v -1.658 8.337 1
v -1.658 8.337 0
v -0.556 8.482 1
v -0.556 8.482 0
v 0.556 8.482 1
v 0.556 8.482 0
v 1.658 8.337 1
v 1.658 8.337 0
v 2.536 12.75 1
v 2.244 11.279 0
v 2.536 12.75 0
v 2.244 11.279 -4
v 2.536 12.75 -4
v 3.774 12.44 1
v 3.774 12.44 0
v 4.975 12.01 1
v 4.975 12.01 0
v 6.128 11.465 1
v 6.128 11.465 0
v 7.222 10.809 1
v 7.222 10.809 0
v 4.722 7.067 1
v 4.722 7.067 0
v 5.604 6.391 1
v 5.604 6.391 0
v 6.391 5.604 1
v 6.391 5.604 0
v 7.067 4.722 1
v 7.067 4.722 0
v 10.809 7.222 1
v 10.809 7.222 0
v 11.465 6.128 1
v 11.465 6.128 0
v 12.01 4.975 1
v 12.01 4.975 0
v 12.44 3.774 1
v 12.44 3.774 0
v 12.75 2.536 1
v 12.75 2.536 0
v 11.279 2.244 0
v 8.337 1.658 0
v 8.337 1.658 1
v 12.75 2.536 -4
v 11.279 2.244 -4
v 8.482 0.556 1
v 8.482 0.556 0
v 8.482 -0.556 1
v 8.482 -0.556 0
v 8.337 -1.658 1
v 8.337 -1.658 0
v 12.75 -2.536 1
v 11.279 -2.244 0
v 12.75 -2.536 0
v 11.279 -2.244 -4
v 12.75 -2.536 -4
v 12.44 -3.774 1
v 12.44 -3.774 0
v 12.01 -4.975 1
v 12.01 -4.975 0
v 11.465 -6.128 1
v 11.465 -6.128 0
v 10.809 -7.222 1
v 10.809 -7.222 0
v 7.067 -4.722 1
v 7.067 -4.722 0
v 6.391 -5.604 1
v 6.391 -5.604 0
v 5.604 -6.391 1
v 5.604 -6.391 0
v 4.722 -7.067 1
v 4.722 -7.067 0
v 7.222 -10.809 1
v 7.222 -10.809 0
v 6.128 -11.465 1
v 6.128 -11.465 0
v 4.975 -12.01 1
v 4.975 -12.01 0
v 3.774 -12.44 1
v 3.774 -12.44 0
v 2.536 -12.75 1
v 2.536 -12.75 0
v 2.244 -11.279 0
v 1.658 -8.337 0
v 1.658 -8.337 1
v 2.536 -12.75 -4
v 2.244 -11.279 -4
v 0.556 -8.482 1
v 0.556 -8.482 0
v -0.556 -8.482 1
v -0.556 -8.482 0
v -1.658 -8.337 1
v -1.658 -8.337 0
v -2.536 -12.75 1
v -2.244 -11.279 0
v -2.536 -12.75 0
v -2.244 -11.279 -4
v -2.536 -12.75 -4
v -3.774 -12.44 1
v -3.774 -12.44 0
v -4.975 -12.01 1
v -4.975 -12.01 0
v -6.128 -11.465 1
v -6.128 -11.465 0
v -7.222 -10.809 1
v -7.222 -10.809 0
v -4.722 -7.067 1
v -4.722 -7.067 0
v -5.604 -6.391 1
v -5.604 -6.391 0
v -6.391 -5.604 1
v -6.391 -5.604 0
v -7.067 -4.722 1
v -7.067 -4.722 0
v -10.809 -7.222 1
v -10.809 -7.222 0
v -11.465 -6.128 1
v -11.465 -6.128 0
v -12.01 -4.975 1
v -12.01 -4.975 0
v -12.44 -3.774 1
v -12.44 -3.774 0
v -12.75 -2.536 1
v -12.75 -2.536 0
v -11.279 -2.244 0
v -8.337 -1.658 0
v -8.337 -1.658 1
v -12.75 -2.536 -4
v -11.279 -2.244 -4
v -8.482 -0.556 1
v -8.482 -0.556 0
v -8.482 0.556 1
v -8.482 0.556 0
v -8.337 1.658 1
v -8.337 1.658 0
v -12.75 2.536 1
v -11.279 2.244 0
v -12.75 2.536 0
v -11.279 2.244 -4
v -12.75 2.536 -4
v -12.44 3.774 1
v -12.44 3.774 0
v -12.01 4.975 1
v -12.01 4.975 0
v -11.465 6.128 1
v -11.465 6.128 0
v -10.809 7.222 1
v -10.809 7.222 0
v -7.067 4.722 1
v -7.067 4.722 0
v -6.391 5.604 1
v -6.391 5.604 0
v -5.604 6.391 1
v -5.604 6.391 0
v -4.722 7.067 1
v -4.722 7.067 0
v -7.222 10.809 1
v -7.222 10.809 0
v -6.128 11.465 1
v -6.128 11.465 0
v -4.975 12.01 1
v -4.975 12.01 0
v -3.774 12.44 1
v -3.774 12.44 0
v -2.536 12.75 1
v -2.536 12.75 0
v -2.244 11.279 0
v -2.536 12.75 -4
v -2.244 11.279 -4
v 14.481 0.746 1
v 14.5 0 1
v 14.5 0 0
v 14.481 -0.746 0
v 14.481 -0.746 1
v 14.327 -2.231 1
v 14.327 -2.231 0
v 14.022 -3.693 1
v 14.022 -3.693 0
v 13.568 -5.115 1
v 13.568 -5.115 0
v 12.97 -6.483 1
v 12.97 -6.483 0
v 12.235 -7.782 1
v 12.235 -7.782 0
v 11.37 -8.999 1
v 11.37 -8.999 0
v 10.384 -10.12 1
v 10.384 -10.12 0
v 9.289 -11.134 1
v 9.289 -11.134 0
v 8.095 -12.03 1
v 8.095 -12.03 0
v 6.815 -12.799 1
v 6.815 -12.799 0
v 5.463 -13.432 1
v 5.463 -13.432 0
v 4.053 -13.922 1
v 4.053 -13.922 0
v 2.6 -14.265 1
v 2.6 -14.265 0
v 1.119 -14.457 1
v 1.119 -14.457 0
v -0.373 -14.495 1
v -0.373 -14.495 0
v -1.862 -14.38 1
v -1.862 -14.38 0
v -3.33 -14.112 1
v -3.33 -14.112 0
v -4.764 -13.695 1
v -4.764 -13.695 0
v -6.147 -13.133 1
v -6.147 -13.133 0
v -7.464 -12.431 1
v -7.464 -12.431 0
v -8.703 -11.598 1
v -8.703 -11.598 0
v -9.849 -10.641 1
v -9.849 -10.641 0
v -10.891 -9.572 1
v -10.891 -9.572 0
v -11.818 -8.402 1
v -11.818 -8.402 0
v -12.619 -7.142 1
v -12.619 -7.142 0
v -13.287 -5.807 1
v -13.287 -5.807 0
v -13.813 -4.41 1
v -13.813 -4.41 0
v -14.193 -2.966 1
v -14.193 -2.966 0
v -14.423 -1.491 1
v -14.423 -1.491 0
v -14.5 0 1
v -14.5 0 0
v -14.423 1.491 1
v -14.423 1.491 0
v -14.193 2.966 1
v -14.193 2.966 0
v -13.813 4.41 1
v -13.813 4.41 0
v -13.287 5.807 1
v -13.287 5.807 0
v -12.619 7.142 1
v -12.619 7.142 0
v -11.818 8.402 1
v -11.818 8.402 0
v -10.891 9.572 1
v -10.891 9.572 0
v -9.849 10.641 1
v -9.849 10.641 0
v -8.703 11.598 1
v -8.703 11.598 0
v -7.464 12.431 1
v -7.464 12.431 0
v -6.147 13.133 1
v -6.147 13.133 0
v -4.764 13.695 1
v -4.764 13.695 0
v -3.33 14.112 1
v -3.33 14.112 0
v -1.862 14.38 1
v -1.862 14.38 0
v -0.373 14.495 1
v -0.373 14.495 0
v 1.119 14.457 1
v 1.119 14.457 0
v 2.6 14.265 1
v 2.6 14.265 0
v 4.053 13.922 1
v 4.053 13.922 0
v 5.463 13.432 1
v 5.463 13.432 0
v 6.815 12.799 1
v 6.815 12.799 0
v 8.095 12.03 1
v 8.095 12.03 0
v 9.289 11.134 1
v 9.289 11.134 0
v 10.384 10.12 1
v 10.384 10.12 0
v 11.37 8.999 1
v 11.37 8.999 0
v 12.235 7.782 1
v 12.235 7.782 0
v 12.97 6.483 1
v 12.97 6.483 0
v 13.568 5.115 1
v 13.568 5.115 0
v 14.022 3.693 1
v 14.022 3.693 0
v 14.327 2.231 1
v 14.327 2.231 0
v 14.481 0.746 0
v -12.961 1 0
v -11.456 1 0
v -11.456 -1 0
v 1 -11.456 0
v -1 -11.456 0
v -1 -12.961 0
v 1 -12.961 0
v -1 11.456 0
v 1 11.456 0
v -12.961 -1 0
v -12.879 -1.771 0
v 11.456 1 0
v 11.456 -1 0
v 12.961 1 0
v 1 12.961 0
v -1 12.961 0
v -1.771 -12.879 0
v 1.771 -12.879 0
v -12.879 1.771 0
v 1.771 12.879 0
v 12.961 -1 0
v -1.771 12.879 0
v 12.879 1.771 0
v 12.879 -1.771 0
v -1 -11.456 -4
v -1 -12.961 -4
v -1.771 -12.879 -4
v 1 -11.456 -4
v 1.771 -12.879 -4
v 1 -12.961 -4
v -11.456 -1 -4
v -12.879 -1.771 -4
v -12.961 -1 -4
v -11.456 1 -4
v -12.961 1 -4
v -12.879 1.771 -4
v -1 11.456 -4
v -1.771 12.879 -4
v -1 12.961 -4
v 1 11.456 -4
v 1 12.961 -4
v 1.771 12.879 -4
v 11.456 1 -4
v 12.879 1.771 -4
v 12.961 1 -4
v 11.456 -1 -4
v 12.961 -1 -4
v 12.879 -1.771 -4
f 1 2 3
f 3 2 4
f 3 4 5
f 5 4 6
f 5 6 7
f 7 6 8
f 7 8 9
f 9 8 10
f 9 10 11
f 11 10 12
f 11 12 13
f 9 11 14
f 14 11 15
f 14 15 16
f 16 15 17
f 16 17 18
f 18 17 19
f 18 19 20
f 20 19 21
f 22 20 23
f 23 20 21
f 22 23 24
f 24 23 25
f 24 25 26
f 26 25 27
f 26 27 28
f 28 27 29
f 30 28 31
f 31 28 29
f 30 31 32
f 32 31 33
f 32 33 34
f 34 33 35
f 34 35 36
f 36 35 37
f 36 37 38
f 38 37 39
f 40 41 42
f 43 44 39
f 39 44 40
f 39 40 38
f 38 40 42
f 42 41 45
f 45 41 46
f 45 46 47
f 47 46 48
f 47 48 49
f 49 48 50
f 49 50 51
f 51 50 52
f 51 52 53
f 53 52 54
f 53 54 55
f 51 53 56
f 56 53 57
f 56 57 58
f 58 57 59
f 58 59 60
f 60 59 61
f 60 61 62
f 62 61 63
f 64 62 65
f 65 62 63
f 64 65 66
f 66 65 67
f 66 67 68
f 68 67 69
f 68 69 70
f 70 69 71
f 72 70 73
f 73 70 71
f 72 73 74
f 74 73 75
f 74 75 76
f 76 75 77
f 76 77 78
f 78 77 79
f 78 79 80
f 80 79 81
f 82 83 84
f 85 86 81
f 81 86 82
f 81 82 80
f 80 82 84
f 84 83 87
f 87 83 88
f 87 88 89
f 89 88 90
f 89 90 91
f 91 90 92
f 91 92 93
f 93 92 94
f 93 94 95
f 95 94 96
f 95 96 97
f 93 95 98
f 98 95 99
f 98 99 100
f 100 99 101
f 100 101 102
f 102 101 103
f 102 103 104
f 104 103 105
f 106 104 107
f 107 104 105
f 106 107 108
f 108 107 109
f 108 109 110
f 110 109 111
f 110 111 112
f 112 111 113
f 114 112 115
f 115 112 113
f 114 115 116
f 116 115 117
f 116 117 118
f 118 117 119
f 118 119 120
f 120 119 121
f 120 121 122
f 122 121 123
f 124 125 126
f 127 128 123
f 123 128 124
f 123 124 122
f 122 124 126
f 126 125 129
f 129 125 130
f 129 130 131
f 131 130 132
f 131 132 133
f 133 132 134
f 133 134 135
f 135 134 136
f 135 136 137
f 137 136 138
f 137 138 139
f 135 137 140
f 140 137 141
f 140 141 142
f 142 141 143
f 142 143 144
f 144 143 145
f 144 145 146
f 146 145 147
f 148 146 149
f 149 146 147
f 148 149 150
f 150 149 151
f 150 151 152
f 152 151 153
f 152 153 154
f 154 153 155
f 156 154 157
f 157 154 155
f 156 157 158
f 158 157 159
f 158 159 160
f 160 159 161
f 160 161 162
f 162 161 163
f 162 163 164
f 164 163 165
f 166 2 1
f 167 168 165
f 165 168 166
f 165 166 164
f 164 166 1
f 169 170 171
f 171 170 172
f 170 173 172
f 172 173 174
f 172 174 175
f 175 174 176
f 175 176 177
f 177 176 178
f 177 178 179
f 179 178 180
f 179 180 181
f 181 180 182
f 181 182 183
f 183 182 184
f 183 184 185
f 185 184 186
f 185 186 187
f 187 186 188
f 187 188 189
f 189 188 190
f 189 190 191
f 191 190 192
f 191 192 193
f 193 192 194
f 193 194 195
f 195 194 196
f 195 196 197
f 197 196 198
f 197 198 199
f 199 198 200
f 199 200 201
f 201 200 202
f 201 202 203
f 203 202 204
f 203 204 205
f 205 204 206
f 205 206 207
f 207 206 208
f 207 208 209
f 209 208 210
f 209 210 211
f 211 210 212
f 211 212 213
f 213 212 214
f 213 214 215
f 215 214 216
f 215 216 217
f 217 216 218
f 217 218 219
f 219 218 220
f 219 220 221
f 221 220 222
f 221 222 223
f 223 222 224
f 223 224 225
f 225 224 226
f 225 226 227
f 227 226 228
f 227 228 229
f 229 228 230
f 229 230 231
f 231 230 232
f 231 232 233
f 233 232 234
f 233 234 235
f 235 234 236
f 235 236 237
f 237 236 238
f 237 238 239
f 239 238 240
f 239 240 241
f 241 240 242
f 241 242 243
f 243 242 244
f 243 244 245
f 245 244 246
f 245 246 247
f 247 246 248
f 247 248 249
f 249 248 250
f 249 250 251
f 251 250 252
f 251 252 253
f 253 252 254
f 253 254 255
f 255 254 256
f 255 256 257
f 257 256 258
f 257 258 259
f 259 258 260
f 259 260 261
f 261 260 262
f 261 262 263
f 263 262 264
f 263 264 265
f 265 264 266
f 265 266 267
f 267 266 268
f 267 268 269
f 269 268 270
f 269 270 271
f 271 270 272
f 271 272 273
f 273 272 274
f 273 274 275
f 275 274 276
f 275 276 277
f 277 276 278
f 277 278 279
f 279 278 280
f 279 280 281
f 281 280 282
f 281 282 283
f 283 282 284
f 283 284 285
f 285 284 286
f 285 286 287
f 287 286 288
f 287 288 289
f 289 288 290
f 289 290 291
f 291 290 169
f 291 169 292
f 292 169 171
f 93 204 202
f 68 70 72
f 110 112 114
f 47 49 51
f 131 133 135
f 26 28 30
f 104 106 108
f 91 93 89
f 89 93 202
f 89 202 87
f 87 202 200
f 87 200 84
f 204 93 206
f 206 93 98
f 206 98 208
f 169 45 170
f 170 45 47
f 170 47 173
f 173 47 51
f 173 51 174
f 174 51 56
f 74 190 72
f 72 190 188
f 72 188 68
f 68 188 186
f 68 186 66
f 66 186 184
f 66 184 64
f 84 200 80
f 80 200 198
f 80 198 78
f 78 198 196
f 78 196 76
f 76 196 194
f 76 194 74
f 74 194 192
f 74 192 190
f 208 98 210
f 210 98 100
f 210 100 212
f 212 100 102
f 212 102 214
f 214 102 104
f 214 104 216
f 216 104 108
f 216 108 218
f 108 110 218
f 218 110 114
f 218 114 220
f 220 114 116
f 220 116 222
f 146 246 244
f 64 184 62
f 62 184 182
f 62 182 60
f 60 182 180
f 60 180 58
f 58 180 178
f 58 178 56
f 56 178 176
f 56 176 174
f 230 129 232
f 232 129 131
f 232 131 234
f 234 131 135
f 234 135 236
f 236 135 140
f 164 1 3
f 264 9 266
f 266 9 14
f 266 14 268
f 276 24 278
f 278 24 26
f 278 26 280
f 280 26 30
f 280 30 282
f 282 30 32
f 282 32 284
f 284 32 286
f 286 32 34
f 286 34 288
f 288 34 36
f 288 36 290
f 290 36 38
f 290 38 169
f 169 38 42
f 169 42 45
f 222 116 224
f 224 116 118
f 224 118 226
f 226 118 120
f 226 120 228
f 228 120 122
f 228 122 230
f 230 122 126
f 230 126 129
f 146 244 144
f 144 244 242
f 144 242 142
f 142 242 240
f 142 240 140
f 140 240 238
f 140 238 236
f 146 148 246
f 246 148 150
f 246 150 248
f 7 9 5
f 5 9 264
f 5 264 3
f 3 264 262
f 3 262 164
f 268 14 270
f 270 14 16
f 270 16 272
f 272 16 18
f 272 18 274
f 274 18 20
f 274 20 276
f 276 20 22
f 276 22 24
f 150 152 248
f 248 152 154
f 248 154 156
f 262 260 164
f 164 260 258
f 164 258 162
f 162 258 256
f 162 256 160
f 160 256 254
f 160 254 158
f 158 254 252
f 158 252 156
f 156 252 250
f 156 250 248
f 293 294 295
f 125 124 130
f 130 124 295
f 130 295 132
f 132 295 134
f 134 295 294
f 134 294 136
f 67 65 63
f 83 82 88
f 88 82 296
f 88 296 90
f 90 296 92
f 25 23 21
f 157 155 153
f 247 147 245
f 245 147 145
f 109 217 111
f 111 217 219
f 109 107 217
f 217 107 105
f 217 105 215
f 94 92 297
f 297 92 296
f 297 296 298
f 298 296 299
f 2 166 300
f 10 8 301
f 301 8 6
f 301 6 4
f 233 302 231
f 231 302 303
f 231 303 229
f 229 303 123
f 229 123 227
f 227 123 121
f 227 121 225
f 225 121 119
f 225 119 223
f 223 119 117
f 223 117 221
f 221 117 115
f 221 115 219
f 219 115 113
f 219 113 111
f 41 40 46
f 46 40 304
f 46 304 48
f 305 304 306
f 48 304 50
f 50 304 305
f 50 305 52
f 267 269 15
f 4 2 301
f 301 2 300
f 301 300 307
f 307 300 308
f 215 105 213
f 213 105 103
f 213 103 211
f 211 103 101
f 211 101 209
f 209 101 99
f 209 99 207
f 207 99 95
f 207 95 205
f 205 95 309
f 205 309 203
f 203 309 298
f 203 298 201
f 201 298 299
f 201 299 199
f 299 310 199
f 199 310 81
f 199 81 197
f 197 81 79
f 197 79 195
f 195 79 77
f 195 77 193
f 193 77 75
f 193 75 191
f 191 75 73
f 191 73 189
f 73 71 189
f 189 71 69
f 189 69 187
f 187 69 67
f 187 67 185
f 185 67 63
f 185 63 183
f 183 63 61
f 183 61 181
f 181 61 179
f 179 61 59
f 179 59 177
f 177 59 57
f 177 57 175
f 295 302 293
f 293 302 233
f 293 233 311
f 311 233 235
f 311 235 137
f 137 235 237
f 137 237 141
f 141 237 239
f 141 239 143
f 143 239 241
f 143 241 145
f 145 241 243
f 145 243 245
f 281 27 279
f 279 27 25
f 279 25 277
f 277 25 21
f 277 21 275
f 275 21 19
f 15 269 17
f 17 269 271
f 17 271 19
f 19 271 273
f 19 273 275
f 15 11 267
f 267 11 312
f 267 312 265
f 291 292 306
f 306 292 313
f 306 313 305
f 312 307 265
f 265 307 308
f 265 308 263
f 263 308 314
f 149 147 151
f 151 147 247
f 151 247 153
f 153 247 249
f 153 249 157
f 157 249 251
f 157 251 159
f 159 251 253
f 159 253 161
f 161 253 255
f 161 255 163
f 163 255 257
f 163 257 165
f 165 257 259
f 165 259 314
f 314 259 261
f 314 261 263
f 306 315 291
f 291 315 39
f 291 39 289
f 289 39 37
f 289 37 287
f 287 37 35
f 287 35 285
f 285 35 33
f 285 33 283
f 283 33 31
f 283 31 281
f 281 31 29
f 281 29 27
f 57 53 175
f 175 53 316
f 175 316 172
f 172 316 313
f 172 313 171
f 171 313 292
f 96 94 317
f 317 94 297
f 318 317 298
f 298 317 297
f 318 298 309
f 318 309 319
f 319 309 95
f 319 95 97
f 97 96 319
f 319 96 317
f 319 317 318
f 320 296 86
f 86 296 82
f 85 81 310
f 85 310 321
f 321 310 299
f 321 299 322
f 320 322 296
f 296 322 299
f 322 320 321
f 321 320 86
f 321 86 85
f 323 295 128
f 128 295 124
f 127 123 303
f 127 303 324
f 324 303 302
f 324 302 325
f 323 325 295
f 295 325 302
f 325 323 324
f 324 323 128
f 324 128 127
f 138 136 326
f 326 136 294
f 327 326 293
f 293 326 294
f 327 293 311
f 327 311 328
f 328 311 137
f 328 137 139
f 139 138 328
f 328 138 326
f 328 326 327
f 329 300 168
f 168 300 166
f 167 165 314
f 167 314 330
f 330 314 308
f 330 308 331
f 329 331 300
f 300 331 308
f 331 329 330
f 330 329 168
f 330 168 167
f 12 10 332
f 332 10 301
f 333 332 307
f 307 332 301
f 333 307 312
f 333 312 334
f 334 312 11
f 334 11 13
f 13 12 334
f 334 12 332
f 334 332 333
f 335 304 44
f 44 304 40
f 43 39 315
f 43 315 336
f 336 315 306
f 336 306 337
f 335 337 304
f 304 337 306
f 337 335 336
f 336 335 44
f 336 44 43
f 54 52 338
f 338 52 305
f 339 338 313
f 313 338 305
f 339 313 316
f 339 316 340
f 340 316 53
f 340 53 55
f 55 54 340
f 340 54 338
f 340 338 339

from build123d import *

# Parameters (mm, degrees)
SKETCH1_R           = 14.5
BOSS_EXTRUDE1_DEPTH = 1
BOSS_EXTRUDE2_START = 4
BOSS_EXTRUDE2_DEPTH = 4


with BuildPart() as part:
    # Sketch1 → Boss-Extrude1 (new body)
    with BuildSketch(Plane.XY):
        Circle(SKETCH1_R)
        with BuildLine():
            ThreePointArc((-1.658267737, 8.336674883), (0, 8.5), (1.658267737, 8.336674883))
            Line((1.658267737, 8.336674883), (2.536174186, 12.750208645))
            ThreePointArc((2.536174186, 12.750208645), (4.974884621, 12.010433923), (7.222413029, 10.80910496))
            Line((7.222413029, 10.80910496), (4.722346981, 7.067491705))
            ThreePointArc((4.722346981, 7.067491705), (6.01040764, 6.01040764), (7.067491705, 4.722346981))
            Line((7.067491705, 4.722346981), (10.80910496, 7.222413029))
            ThreePointArc((10.80910496, 7.222413029), (12.010433923, 4.974884621), (12.750208645, 2.536174186))
            Line((12.750208645, 2.536174186), (8.336674883, 1.658267737))
            ThreePointArc((8.336674883, 1.658267737), (8.5, 0), (8.336674883, -1.658267737))
            Line((8.336674883, -1.658267737), (12.750208645, -2.536174186))
            ThreePointArc((12.750208645, -2.536174186), (12.010433923, -4.974884621), (10.80910496, -7.222413029))
            Line((10.80910496, -7.222413029), (7.067491705, -4.722346981))
            ThreePointArc((7.067491705, -4.722346981), (6.01040764, -6.01040764), (4.722346981, -7.067491705))
            Line((4.722346981, -7.067491705), (7.222413029, -10.80910496))
            ThreePointArc((7.222413029, -10.80910496), (4.974884621, -12.010433923), (2.536174186, -12.750208645))
            Line((2.536174186, -12.750208645), (1.658267737, -8.336674883))
            ThreePointArc((1.658267737, -8.336674883), (0, -8.5), (-1.658267737, -8.336674883))
            Line((-1.658267737, -8.336674883), (-2.536174186, -12.750208645))
            ThreePointArc((-2.536174186, -12.750208645), (-4.974884621, -12.010433923), (-7.222413029, -10.80910496))
            Line((-7.222413029, -10.80910496), (-4.722346981, -7.067491705))
            ThreePointArc((-4.722346981, -7.067491705), (-6.01040764, -6.01040764), (-7.067491705, -4.722346981))
            Line((-7.067491705, -4.722346981), (-10.80910496, -7.222413029))
            ThreePointArc((-10.80910496, -7.222413029), (-12.010433923, -4.974884621), (-12.750208645, -2.536174186))
            Line((-12.750208645, -2.536174186), (-8.336674883, -1.658267737))
            ThreePointArc((-8.336674883, -1.658267737), (-8.5, 0), (-8.336674883, 1.658267737))
            Line((-8.336674883, 1.658267737), (-12.750208645, 2.536174186))
            ThreePointArc((-12.750208645, 2.536174186), (-12.010433923, 4.974884621), (-10.80910496, 7.222413029))
            Line((-10.80910496, 7.222413029), (-7.067491705, 4.722346981))
            ThreePointArc((-7.067491705, 4.722346981), (-6.01040764, 6.01040764), (-4.722346981, 7.067491705))
            Line((-4.722346981, 7.067491705), (-7.222413029, 10.80910496))
            ThreePointArc((-7.222413029, 10.80910496), (-4.974884621, 12.010433923), (-2.536174186, 12.750208645))
            Line((-2.536174186, 12.750208645), (-1.658267737, 8.336674883))
        make_face(mode=Mode.SUBTRACT)
    extrude(amount=BOSS_EXTRUDE1_DEPTH)

    # Sketch2 → Boss-Extrude2 (add)
    with BuildSketch(Plane(origin=(0, 0, 0), x_dir=(-1, 0, 0), z_dir=(0, 0, -1)).offset(BOSS_EXTRUDE2_START)):
        with BuildLine():
            Line((2.536174186, -12.750208645), (2.243538703, -11.279030725))
            ThreePointArc((2.243538703, -11.279030725), (1.624193423, -11.384726423), (1, -11.456439237))
            Line((1, -11.456439237), (1, -12.961481397))
            ThreePointArc((1, -12.961481397), (1.771239965, -12.8787697), (2.536174186, -12.750208645))
        make_face()
        with BuildLine():
            Line((-1, -12.961481397), (-1, -11.456439237))
            ThreePointArc((-1, -11.456439237), (-1.624193423, -11.384726423), (-2.243538703, -11.279030725))
            Line((-2.243538703, -11.279030725), (-2.536174186, -12.750208645))
            ThreePointArc((-2.536174186, -12.750208645), (-1.771239965, -12.8787697), (-1, -12.961481397))
        make_face()
        with BuildLine():
            Line((12.961481397, -1), (11.456439237, -1))
            ThreePointArc((11.456439237, -1), (11.384726423, -1.624193423), (11.279030725, -2.243538703))
            Line((11.279030725, -2.243538703), (12.750208645, -2.536174186))
            ThreePointArc((12.750208645, -2.536174186), (12.8787697, -1.771239965), (12.961481397, -1))
        make_face()
        with BuildLine():
            Line((12.750208645, 2.536174186), (11.279030725, 2.243538703))
            ThreePointArc((11.279030725, 2.243538703), (11.384726423, 1.624193423), (11.456439237, 1))
            Line((11.456439237, 1), (12.961481397, 1))
            ThreePointArc((12.961481397, 1), (12.8787697, 1.771239965), (12.750208645, 2.536174186))
        make_face()
        with BuildLine():
            ThreePointArc((1, 11.456439237), (1.624193423, 11.384726423), (2.243538703, 11.279030725))
            Line((2.243538703, 11.279030725), (2.536174186, 12.750208645))
            ThreePointArc((2.536174186, 12.750208645), (1.771239965, 12.8787697), (1, 12.961481397))
            Line((1, 12.961481397), (1, 11.456439237))
        make_face()
        with BuildLine():
            ThreePointArc((-2.243538703, 11.279030725), (-1.624193423, 11.384726423), (-1, 11.456439237))
            Line((-1, 11.456439237), (-1, 12.961481397))
            ThreePointArc((-1, 12.961481397), (-1.771239965, 12.8787697), (-2.536174186, 12.750208645))
            Line((-2.536174186, 12.750208645), (-2.243538703, 11.279030725))
        make_face()
        with BuildLine():
            ThreePointArc((-11.456439237, 1), (-11.384726423, 1.624193423), (-11.279030725, 2.243538703))
            Line((-11.279030725, 2.243538703), (-12.750208645, 2.536174186))
            ThreePointArc((-12.750208645, 2.536174186), (-12.8787697, 1.771239965), (-12.961481397, 1))
            Line((-12.961481397, 1), (-11.456439237, 1))
        make_face()
        with BuildLine():
            ThreePointArc((-11.279030725, -2.243538703), (-11.384726423, -1.624193423), (-11.456439237, -1))
            Line((-11.456439237, -1), (-12.961481397, -1))
            ThreePointArc((-12.961481397, -1), (-12.8787697, -1.771239965), (-12.750208645, -2.536174186))
            Line((-12.750208645, -2.536174186), (-11.279030725, -2.243538703))
        make_face()
    extrude(amount=-BOSS_EXTRUDE2_DEPTH)


solid = part.part
